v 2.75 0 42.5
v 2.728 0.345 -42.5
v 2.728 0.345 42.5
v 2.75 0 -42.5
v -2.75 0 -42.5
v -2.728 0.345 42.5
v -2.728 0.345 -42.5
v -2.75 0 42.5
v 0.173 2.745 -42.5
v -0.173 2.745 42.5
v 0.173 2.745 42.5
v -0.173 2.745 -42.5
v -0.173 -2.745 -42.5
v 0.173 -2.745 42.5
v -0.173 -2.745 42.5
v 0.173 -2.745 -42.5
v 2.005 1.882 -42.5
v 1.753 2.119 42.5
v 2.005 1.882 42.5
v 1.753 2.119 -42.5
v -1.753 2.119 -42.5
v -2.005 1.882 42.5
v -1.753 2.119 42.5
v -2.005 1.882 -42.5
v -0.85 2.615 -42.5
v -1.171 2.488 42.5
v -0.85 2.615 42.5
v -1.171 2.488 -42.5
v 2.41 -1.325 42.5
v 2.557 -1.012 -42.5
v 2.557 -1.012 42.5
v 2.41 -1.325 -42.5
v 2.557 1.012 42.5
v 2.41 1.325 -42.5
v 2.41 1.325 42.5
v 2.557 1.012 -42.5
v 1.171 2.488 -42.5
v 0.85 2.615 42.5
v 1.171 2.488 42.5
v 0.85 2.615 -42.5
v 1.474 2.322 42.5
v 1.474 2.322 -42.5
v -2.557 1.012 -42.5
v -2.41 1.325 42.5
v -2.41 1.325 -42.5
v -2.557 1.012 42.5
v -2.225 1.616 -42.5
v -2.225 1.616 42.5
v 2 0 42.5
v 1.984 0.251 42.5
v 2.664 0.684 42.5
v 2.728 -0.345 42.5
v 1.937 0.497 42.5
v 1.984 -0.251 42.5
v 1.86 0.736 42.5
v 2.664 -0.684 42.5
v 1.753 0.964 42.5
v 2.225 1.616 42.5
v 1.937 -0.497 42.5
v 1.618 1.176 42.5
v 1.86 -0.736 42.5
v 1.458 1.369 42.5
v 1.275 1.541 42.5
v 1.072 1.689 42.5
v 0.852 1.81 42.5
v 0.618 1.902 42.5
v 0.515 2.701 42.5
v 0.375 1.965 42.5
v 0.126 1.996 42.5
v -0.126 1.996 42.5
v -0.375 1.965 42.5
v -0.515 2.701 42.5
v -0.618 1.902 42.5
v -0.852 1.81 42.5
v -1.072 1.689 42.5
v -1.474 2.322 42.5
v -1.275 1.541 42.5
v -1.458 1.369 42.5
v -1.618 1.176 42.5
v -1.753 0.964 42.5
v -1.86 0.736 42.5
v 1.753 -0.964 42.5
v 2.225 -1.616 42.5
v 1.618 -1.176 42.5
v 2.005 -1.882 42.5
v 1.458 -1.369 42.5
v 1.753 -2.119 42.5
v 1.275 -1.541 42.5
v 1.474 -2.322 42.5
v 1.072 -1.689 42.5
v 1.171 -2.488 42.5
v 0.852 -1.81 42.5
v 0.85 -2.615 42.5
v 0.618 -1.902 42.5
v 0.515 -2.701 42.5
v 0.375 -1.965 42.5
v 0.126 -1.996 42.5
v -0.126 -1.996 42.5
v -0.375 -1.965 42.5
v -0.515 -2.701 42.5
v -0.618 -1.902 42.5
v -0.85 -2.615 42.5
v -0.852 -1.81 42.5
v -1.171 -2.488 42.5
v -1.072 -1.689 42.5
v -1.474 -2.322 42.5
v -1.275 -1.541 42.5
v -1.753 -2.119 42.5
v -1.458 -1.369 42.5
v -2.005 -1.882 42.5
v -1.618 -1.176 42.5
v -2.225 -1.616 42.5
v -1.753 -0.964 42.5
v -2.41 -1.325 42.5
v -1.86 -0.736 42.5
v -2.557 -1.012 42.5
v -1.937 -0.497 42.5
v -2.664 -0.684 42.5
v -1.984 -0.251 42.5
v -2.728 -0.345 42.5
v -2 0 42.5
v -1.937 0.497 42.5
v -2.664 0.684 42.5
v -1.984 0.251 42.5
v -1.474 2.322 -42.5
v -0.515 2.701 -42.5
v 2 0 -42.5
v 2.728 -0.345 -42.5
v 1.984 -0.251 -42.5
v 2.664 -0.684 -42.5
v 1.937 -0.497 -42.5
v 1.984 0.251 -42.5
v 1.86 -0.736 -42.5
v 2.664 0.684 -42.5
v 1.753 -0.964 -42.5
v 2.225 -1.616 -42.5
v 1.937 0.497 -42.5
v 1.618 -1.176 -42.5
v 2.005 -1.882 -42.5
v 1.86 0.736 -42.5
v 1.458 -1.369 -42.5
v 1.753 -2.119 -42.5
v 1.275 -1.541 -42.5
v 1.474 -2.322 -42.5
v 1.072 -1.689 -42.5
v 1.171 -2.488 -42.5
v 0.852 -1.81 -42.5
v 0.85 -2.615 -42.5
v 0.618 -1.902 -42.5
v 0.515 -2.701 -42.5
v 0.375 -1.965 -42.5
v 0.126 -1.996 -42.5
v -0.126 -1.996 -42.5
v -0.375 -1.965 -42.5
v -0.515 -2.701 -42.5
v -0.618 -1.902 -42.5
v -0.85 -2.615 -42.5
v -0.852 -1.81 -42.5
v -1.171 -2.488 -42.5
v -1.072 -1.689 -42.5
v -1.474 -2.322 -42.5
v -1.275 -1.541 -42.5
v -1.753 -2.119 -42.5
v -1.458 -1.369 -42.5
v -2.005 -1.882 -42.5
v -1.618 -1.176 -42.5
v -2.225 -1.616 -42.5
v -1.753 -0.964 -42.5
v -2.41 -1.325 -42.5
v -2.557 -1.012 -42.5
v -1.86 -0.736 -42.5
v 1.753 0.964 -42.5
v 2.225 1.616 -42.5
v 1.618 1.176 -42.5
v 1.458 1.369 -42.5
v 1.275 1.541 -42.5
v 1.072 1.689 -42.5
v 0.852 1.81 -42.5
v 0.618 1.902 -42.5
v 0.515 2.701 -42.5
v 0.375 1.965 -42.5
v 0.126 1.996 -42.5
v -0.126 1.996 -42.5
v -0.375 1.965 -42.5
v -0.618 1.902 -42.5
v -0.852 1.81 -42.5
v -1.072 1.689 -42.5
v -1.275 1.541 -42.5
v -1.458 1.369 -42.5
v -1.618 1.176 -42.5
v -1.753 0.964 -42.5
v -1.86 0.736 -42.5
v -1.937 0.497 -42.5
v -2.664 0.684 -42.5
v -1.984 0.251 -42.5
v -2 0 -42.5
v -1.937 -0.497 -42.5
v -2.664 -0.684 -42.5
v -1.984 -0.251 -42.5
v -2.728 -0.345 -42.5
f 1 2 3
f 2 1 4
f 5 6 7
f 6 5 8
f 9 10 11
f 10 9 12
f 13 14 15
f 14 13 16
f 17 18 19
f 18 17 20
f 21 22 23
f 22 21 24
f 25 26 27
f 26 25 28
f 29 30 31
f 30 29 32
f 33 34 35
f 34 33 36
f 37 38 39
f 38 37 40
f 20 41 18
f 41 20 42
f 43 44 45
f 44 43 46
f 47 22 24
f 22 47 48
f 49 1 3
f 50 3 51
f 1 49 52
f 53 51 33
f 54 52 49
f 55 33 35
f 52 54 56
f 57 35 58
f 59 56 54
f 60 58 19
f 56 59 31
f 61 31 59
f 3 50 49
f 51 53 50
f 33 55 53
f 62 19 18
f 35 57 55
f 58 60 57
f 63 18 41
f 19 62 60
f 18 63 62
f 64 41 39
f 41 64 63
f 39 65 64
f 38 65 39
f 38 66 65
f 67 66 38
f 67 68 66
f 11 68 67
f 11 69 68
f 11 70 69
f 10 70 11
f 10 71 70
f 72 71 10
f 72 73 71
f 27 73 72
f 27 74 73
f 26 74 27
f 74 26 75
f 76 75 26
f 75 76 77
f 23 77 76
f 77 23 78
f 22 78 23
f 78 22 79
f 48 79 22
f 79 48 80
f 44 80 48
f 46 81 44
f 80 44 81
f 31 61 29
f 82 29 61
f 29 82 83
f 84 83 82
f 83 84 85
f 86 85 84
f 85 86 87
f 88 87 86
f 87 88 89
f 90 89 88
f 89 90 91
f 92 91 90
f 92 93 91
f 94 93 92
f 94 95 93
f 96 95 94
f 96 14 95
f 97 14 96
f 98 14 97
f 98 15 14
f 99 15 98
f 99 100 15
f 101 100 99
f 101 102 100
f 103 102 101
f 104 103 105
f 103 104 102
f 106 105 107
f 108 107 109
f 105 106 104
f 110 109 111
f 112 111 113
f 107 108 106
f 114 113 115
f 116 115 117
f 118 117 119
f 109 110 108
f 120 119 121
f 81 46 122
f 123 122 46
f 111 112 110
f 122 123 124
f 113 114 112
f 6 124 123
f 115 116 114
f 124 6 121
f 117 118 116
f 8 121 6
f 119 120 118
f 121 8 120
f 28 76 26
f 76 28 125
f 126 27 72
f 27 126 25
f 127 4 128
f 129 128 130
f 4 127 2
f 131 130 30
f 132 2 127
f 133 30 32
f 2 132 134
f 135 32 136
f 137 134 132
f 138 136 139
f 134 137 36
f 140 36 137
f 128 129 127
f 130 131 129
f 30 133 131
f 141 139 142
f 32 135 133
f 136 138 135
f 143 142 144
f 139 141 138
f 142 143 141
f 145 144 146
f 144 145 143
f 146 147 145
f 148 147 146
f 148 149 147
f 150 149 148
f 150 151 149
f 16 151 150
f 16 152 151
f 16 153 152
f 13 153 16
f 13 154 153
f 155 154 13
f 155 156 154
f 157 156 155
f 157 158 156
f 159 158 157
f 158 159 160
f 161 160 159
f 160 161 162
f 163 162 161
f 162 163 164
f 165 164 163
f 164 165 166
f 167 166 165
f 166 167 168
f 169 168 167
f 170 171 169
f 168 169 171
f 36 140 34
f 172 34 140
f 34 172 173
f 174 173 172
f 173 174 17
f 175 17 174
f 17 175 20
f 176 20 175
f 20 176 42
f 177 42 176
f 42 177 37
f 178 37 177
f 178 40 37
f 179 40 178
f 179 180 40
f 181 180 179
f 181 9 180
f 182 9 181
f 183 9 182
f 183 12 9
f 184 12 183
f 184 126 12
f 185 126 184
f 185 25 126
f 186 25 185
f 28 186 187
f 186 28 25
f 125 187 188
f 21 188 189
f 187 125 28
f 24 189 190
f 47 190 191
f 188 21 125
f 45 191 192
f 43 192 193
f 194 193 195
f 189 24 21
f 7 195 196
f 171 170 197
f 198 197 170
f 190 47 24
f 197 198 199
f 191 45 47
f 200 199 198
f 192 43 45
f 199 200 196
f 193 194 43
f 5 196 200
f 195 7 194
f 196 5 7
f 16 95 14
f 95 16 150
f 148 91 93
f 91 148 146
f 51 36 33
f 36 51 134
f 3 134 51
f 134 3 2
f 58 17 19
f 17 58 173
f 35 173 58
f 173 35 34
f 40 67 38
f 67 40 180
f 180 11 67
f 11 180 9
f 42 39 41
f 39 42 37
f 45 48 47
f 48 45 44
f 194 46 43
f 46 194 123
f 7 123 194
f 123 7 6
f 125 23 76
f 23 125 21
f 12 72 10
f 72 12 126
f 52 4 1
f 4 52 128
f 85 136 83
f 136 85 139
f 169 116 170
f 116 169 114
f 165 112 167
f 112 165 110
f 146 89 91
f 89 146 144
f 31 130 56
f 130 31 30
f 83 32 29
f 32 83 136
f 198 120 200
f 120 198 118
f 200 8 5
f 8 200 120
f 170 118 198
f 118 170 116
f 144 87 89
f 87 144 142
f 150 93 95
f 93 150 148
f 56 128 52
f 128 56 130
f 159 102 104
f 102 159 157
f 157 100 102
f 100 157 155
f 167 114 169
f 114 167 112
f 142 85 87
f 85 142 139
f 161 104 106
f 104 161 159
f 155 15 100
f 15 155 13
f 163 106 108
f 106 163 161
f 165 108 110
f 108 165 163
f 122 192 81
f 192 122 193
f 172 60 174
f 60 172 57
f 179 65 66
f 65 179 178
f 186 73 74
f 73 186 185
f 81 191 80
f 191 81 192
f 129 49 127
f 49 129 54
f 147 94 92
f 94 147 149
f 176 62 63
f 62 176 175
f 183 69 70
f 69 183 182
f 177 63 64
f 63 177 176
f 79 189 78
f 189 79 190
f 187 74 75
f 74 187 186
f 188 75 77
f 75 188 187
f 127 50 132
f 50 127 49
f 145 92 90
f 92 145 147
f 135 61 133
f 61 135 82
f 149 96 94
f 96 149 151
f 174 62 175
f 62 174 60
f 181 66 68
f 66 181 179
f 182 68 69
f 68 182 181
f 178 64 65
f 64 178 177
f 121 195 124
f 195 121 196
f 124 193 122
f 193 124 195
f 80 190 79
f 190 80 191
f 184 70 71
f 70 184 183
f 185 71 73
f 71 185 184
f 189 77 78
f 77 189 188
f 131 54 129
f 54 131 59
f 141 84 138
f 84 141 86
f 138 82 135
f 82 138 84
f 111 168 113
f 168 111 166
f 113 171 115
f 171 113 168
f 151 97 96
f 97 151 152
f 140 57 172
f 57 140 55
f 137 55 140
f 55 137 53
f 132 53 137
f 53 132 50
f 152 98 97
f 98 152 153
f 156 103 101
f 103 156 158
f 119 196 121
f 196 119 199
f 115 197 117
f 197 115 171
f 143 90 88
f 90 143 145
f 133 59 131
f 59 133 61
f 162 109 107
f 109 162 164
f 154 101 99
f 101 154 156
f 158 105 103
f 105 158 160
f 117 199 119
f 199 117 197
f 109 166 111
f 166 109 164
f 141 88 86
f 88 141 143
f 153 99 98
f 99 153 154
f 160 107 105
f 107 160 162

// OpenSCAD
$fn = 50;


difference() {
	union() {
		translate(v = [0, 0, -42.5000000000]) {
			cylinder(h = 85, r = 2.7500000000);
		}
	}
	union() {
		translate(v = [0, 0, -100.0000000000]) {
			cylinder(h = 200, r = 2.0000000000);
		}
	}
}
